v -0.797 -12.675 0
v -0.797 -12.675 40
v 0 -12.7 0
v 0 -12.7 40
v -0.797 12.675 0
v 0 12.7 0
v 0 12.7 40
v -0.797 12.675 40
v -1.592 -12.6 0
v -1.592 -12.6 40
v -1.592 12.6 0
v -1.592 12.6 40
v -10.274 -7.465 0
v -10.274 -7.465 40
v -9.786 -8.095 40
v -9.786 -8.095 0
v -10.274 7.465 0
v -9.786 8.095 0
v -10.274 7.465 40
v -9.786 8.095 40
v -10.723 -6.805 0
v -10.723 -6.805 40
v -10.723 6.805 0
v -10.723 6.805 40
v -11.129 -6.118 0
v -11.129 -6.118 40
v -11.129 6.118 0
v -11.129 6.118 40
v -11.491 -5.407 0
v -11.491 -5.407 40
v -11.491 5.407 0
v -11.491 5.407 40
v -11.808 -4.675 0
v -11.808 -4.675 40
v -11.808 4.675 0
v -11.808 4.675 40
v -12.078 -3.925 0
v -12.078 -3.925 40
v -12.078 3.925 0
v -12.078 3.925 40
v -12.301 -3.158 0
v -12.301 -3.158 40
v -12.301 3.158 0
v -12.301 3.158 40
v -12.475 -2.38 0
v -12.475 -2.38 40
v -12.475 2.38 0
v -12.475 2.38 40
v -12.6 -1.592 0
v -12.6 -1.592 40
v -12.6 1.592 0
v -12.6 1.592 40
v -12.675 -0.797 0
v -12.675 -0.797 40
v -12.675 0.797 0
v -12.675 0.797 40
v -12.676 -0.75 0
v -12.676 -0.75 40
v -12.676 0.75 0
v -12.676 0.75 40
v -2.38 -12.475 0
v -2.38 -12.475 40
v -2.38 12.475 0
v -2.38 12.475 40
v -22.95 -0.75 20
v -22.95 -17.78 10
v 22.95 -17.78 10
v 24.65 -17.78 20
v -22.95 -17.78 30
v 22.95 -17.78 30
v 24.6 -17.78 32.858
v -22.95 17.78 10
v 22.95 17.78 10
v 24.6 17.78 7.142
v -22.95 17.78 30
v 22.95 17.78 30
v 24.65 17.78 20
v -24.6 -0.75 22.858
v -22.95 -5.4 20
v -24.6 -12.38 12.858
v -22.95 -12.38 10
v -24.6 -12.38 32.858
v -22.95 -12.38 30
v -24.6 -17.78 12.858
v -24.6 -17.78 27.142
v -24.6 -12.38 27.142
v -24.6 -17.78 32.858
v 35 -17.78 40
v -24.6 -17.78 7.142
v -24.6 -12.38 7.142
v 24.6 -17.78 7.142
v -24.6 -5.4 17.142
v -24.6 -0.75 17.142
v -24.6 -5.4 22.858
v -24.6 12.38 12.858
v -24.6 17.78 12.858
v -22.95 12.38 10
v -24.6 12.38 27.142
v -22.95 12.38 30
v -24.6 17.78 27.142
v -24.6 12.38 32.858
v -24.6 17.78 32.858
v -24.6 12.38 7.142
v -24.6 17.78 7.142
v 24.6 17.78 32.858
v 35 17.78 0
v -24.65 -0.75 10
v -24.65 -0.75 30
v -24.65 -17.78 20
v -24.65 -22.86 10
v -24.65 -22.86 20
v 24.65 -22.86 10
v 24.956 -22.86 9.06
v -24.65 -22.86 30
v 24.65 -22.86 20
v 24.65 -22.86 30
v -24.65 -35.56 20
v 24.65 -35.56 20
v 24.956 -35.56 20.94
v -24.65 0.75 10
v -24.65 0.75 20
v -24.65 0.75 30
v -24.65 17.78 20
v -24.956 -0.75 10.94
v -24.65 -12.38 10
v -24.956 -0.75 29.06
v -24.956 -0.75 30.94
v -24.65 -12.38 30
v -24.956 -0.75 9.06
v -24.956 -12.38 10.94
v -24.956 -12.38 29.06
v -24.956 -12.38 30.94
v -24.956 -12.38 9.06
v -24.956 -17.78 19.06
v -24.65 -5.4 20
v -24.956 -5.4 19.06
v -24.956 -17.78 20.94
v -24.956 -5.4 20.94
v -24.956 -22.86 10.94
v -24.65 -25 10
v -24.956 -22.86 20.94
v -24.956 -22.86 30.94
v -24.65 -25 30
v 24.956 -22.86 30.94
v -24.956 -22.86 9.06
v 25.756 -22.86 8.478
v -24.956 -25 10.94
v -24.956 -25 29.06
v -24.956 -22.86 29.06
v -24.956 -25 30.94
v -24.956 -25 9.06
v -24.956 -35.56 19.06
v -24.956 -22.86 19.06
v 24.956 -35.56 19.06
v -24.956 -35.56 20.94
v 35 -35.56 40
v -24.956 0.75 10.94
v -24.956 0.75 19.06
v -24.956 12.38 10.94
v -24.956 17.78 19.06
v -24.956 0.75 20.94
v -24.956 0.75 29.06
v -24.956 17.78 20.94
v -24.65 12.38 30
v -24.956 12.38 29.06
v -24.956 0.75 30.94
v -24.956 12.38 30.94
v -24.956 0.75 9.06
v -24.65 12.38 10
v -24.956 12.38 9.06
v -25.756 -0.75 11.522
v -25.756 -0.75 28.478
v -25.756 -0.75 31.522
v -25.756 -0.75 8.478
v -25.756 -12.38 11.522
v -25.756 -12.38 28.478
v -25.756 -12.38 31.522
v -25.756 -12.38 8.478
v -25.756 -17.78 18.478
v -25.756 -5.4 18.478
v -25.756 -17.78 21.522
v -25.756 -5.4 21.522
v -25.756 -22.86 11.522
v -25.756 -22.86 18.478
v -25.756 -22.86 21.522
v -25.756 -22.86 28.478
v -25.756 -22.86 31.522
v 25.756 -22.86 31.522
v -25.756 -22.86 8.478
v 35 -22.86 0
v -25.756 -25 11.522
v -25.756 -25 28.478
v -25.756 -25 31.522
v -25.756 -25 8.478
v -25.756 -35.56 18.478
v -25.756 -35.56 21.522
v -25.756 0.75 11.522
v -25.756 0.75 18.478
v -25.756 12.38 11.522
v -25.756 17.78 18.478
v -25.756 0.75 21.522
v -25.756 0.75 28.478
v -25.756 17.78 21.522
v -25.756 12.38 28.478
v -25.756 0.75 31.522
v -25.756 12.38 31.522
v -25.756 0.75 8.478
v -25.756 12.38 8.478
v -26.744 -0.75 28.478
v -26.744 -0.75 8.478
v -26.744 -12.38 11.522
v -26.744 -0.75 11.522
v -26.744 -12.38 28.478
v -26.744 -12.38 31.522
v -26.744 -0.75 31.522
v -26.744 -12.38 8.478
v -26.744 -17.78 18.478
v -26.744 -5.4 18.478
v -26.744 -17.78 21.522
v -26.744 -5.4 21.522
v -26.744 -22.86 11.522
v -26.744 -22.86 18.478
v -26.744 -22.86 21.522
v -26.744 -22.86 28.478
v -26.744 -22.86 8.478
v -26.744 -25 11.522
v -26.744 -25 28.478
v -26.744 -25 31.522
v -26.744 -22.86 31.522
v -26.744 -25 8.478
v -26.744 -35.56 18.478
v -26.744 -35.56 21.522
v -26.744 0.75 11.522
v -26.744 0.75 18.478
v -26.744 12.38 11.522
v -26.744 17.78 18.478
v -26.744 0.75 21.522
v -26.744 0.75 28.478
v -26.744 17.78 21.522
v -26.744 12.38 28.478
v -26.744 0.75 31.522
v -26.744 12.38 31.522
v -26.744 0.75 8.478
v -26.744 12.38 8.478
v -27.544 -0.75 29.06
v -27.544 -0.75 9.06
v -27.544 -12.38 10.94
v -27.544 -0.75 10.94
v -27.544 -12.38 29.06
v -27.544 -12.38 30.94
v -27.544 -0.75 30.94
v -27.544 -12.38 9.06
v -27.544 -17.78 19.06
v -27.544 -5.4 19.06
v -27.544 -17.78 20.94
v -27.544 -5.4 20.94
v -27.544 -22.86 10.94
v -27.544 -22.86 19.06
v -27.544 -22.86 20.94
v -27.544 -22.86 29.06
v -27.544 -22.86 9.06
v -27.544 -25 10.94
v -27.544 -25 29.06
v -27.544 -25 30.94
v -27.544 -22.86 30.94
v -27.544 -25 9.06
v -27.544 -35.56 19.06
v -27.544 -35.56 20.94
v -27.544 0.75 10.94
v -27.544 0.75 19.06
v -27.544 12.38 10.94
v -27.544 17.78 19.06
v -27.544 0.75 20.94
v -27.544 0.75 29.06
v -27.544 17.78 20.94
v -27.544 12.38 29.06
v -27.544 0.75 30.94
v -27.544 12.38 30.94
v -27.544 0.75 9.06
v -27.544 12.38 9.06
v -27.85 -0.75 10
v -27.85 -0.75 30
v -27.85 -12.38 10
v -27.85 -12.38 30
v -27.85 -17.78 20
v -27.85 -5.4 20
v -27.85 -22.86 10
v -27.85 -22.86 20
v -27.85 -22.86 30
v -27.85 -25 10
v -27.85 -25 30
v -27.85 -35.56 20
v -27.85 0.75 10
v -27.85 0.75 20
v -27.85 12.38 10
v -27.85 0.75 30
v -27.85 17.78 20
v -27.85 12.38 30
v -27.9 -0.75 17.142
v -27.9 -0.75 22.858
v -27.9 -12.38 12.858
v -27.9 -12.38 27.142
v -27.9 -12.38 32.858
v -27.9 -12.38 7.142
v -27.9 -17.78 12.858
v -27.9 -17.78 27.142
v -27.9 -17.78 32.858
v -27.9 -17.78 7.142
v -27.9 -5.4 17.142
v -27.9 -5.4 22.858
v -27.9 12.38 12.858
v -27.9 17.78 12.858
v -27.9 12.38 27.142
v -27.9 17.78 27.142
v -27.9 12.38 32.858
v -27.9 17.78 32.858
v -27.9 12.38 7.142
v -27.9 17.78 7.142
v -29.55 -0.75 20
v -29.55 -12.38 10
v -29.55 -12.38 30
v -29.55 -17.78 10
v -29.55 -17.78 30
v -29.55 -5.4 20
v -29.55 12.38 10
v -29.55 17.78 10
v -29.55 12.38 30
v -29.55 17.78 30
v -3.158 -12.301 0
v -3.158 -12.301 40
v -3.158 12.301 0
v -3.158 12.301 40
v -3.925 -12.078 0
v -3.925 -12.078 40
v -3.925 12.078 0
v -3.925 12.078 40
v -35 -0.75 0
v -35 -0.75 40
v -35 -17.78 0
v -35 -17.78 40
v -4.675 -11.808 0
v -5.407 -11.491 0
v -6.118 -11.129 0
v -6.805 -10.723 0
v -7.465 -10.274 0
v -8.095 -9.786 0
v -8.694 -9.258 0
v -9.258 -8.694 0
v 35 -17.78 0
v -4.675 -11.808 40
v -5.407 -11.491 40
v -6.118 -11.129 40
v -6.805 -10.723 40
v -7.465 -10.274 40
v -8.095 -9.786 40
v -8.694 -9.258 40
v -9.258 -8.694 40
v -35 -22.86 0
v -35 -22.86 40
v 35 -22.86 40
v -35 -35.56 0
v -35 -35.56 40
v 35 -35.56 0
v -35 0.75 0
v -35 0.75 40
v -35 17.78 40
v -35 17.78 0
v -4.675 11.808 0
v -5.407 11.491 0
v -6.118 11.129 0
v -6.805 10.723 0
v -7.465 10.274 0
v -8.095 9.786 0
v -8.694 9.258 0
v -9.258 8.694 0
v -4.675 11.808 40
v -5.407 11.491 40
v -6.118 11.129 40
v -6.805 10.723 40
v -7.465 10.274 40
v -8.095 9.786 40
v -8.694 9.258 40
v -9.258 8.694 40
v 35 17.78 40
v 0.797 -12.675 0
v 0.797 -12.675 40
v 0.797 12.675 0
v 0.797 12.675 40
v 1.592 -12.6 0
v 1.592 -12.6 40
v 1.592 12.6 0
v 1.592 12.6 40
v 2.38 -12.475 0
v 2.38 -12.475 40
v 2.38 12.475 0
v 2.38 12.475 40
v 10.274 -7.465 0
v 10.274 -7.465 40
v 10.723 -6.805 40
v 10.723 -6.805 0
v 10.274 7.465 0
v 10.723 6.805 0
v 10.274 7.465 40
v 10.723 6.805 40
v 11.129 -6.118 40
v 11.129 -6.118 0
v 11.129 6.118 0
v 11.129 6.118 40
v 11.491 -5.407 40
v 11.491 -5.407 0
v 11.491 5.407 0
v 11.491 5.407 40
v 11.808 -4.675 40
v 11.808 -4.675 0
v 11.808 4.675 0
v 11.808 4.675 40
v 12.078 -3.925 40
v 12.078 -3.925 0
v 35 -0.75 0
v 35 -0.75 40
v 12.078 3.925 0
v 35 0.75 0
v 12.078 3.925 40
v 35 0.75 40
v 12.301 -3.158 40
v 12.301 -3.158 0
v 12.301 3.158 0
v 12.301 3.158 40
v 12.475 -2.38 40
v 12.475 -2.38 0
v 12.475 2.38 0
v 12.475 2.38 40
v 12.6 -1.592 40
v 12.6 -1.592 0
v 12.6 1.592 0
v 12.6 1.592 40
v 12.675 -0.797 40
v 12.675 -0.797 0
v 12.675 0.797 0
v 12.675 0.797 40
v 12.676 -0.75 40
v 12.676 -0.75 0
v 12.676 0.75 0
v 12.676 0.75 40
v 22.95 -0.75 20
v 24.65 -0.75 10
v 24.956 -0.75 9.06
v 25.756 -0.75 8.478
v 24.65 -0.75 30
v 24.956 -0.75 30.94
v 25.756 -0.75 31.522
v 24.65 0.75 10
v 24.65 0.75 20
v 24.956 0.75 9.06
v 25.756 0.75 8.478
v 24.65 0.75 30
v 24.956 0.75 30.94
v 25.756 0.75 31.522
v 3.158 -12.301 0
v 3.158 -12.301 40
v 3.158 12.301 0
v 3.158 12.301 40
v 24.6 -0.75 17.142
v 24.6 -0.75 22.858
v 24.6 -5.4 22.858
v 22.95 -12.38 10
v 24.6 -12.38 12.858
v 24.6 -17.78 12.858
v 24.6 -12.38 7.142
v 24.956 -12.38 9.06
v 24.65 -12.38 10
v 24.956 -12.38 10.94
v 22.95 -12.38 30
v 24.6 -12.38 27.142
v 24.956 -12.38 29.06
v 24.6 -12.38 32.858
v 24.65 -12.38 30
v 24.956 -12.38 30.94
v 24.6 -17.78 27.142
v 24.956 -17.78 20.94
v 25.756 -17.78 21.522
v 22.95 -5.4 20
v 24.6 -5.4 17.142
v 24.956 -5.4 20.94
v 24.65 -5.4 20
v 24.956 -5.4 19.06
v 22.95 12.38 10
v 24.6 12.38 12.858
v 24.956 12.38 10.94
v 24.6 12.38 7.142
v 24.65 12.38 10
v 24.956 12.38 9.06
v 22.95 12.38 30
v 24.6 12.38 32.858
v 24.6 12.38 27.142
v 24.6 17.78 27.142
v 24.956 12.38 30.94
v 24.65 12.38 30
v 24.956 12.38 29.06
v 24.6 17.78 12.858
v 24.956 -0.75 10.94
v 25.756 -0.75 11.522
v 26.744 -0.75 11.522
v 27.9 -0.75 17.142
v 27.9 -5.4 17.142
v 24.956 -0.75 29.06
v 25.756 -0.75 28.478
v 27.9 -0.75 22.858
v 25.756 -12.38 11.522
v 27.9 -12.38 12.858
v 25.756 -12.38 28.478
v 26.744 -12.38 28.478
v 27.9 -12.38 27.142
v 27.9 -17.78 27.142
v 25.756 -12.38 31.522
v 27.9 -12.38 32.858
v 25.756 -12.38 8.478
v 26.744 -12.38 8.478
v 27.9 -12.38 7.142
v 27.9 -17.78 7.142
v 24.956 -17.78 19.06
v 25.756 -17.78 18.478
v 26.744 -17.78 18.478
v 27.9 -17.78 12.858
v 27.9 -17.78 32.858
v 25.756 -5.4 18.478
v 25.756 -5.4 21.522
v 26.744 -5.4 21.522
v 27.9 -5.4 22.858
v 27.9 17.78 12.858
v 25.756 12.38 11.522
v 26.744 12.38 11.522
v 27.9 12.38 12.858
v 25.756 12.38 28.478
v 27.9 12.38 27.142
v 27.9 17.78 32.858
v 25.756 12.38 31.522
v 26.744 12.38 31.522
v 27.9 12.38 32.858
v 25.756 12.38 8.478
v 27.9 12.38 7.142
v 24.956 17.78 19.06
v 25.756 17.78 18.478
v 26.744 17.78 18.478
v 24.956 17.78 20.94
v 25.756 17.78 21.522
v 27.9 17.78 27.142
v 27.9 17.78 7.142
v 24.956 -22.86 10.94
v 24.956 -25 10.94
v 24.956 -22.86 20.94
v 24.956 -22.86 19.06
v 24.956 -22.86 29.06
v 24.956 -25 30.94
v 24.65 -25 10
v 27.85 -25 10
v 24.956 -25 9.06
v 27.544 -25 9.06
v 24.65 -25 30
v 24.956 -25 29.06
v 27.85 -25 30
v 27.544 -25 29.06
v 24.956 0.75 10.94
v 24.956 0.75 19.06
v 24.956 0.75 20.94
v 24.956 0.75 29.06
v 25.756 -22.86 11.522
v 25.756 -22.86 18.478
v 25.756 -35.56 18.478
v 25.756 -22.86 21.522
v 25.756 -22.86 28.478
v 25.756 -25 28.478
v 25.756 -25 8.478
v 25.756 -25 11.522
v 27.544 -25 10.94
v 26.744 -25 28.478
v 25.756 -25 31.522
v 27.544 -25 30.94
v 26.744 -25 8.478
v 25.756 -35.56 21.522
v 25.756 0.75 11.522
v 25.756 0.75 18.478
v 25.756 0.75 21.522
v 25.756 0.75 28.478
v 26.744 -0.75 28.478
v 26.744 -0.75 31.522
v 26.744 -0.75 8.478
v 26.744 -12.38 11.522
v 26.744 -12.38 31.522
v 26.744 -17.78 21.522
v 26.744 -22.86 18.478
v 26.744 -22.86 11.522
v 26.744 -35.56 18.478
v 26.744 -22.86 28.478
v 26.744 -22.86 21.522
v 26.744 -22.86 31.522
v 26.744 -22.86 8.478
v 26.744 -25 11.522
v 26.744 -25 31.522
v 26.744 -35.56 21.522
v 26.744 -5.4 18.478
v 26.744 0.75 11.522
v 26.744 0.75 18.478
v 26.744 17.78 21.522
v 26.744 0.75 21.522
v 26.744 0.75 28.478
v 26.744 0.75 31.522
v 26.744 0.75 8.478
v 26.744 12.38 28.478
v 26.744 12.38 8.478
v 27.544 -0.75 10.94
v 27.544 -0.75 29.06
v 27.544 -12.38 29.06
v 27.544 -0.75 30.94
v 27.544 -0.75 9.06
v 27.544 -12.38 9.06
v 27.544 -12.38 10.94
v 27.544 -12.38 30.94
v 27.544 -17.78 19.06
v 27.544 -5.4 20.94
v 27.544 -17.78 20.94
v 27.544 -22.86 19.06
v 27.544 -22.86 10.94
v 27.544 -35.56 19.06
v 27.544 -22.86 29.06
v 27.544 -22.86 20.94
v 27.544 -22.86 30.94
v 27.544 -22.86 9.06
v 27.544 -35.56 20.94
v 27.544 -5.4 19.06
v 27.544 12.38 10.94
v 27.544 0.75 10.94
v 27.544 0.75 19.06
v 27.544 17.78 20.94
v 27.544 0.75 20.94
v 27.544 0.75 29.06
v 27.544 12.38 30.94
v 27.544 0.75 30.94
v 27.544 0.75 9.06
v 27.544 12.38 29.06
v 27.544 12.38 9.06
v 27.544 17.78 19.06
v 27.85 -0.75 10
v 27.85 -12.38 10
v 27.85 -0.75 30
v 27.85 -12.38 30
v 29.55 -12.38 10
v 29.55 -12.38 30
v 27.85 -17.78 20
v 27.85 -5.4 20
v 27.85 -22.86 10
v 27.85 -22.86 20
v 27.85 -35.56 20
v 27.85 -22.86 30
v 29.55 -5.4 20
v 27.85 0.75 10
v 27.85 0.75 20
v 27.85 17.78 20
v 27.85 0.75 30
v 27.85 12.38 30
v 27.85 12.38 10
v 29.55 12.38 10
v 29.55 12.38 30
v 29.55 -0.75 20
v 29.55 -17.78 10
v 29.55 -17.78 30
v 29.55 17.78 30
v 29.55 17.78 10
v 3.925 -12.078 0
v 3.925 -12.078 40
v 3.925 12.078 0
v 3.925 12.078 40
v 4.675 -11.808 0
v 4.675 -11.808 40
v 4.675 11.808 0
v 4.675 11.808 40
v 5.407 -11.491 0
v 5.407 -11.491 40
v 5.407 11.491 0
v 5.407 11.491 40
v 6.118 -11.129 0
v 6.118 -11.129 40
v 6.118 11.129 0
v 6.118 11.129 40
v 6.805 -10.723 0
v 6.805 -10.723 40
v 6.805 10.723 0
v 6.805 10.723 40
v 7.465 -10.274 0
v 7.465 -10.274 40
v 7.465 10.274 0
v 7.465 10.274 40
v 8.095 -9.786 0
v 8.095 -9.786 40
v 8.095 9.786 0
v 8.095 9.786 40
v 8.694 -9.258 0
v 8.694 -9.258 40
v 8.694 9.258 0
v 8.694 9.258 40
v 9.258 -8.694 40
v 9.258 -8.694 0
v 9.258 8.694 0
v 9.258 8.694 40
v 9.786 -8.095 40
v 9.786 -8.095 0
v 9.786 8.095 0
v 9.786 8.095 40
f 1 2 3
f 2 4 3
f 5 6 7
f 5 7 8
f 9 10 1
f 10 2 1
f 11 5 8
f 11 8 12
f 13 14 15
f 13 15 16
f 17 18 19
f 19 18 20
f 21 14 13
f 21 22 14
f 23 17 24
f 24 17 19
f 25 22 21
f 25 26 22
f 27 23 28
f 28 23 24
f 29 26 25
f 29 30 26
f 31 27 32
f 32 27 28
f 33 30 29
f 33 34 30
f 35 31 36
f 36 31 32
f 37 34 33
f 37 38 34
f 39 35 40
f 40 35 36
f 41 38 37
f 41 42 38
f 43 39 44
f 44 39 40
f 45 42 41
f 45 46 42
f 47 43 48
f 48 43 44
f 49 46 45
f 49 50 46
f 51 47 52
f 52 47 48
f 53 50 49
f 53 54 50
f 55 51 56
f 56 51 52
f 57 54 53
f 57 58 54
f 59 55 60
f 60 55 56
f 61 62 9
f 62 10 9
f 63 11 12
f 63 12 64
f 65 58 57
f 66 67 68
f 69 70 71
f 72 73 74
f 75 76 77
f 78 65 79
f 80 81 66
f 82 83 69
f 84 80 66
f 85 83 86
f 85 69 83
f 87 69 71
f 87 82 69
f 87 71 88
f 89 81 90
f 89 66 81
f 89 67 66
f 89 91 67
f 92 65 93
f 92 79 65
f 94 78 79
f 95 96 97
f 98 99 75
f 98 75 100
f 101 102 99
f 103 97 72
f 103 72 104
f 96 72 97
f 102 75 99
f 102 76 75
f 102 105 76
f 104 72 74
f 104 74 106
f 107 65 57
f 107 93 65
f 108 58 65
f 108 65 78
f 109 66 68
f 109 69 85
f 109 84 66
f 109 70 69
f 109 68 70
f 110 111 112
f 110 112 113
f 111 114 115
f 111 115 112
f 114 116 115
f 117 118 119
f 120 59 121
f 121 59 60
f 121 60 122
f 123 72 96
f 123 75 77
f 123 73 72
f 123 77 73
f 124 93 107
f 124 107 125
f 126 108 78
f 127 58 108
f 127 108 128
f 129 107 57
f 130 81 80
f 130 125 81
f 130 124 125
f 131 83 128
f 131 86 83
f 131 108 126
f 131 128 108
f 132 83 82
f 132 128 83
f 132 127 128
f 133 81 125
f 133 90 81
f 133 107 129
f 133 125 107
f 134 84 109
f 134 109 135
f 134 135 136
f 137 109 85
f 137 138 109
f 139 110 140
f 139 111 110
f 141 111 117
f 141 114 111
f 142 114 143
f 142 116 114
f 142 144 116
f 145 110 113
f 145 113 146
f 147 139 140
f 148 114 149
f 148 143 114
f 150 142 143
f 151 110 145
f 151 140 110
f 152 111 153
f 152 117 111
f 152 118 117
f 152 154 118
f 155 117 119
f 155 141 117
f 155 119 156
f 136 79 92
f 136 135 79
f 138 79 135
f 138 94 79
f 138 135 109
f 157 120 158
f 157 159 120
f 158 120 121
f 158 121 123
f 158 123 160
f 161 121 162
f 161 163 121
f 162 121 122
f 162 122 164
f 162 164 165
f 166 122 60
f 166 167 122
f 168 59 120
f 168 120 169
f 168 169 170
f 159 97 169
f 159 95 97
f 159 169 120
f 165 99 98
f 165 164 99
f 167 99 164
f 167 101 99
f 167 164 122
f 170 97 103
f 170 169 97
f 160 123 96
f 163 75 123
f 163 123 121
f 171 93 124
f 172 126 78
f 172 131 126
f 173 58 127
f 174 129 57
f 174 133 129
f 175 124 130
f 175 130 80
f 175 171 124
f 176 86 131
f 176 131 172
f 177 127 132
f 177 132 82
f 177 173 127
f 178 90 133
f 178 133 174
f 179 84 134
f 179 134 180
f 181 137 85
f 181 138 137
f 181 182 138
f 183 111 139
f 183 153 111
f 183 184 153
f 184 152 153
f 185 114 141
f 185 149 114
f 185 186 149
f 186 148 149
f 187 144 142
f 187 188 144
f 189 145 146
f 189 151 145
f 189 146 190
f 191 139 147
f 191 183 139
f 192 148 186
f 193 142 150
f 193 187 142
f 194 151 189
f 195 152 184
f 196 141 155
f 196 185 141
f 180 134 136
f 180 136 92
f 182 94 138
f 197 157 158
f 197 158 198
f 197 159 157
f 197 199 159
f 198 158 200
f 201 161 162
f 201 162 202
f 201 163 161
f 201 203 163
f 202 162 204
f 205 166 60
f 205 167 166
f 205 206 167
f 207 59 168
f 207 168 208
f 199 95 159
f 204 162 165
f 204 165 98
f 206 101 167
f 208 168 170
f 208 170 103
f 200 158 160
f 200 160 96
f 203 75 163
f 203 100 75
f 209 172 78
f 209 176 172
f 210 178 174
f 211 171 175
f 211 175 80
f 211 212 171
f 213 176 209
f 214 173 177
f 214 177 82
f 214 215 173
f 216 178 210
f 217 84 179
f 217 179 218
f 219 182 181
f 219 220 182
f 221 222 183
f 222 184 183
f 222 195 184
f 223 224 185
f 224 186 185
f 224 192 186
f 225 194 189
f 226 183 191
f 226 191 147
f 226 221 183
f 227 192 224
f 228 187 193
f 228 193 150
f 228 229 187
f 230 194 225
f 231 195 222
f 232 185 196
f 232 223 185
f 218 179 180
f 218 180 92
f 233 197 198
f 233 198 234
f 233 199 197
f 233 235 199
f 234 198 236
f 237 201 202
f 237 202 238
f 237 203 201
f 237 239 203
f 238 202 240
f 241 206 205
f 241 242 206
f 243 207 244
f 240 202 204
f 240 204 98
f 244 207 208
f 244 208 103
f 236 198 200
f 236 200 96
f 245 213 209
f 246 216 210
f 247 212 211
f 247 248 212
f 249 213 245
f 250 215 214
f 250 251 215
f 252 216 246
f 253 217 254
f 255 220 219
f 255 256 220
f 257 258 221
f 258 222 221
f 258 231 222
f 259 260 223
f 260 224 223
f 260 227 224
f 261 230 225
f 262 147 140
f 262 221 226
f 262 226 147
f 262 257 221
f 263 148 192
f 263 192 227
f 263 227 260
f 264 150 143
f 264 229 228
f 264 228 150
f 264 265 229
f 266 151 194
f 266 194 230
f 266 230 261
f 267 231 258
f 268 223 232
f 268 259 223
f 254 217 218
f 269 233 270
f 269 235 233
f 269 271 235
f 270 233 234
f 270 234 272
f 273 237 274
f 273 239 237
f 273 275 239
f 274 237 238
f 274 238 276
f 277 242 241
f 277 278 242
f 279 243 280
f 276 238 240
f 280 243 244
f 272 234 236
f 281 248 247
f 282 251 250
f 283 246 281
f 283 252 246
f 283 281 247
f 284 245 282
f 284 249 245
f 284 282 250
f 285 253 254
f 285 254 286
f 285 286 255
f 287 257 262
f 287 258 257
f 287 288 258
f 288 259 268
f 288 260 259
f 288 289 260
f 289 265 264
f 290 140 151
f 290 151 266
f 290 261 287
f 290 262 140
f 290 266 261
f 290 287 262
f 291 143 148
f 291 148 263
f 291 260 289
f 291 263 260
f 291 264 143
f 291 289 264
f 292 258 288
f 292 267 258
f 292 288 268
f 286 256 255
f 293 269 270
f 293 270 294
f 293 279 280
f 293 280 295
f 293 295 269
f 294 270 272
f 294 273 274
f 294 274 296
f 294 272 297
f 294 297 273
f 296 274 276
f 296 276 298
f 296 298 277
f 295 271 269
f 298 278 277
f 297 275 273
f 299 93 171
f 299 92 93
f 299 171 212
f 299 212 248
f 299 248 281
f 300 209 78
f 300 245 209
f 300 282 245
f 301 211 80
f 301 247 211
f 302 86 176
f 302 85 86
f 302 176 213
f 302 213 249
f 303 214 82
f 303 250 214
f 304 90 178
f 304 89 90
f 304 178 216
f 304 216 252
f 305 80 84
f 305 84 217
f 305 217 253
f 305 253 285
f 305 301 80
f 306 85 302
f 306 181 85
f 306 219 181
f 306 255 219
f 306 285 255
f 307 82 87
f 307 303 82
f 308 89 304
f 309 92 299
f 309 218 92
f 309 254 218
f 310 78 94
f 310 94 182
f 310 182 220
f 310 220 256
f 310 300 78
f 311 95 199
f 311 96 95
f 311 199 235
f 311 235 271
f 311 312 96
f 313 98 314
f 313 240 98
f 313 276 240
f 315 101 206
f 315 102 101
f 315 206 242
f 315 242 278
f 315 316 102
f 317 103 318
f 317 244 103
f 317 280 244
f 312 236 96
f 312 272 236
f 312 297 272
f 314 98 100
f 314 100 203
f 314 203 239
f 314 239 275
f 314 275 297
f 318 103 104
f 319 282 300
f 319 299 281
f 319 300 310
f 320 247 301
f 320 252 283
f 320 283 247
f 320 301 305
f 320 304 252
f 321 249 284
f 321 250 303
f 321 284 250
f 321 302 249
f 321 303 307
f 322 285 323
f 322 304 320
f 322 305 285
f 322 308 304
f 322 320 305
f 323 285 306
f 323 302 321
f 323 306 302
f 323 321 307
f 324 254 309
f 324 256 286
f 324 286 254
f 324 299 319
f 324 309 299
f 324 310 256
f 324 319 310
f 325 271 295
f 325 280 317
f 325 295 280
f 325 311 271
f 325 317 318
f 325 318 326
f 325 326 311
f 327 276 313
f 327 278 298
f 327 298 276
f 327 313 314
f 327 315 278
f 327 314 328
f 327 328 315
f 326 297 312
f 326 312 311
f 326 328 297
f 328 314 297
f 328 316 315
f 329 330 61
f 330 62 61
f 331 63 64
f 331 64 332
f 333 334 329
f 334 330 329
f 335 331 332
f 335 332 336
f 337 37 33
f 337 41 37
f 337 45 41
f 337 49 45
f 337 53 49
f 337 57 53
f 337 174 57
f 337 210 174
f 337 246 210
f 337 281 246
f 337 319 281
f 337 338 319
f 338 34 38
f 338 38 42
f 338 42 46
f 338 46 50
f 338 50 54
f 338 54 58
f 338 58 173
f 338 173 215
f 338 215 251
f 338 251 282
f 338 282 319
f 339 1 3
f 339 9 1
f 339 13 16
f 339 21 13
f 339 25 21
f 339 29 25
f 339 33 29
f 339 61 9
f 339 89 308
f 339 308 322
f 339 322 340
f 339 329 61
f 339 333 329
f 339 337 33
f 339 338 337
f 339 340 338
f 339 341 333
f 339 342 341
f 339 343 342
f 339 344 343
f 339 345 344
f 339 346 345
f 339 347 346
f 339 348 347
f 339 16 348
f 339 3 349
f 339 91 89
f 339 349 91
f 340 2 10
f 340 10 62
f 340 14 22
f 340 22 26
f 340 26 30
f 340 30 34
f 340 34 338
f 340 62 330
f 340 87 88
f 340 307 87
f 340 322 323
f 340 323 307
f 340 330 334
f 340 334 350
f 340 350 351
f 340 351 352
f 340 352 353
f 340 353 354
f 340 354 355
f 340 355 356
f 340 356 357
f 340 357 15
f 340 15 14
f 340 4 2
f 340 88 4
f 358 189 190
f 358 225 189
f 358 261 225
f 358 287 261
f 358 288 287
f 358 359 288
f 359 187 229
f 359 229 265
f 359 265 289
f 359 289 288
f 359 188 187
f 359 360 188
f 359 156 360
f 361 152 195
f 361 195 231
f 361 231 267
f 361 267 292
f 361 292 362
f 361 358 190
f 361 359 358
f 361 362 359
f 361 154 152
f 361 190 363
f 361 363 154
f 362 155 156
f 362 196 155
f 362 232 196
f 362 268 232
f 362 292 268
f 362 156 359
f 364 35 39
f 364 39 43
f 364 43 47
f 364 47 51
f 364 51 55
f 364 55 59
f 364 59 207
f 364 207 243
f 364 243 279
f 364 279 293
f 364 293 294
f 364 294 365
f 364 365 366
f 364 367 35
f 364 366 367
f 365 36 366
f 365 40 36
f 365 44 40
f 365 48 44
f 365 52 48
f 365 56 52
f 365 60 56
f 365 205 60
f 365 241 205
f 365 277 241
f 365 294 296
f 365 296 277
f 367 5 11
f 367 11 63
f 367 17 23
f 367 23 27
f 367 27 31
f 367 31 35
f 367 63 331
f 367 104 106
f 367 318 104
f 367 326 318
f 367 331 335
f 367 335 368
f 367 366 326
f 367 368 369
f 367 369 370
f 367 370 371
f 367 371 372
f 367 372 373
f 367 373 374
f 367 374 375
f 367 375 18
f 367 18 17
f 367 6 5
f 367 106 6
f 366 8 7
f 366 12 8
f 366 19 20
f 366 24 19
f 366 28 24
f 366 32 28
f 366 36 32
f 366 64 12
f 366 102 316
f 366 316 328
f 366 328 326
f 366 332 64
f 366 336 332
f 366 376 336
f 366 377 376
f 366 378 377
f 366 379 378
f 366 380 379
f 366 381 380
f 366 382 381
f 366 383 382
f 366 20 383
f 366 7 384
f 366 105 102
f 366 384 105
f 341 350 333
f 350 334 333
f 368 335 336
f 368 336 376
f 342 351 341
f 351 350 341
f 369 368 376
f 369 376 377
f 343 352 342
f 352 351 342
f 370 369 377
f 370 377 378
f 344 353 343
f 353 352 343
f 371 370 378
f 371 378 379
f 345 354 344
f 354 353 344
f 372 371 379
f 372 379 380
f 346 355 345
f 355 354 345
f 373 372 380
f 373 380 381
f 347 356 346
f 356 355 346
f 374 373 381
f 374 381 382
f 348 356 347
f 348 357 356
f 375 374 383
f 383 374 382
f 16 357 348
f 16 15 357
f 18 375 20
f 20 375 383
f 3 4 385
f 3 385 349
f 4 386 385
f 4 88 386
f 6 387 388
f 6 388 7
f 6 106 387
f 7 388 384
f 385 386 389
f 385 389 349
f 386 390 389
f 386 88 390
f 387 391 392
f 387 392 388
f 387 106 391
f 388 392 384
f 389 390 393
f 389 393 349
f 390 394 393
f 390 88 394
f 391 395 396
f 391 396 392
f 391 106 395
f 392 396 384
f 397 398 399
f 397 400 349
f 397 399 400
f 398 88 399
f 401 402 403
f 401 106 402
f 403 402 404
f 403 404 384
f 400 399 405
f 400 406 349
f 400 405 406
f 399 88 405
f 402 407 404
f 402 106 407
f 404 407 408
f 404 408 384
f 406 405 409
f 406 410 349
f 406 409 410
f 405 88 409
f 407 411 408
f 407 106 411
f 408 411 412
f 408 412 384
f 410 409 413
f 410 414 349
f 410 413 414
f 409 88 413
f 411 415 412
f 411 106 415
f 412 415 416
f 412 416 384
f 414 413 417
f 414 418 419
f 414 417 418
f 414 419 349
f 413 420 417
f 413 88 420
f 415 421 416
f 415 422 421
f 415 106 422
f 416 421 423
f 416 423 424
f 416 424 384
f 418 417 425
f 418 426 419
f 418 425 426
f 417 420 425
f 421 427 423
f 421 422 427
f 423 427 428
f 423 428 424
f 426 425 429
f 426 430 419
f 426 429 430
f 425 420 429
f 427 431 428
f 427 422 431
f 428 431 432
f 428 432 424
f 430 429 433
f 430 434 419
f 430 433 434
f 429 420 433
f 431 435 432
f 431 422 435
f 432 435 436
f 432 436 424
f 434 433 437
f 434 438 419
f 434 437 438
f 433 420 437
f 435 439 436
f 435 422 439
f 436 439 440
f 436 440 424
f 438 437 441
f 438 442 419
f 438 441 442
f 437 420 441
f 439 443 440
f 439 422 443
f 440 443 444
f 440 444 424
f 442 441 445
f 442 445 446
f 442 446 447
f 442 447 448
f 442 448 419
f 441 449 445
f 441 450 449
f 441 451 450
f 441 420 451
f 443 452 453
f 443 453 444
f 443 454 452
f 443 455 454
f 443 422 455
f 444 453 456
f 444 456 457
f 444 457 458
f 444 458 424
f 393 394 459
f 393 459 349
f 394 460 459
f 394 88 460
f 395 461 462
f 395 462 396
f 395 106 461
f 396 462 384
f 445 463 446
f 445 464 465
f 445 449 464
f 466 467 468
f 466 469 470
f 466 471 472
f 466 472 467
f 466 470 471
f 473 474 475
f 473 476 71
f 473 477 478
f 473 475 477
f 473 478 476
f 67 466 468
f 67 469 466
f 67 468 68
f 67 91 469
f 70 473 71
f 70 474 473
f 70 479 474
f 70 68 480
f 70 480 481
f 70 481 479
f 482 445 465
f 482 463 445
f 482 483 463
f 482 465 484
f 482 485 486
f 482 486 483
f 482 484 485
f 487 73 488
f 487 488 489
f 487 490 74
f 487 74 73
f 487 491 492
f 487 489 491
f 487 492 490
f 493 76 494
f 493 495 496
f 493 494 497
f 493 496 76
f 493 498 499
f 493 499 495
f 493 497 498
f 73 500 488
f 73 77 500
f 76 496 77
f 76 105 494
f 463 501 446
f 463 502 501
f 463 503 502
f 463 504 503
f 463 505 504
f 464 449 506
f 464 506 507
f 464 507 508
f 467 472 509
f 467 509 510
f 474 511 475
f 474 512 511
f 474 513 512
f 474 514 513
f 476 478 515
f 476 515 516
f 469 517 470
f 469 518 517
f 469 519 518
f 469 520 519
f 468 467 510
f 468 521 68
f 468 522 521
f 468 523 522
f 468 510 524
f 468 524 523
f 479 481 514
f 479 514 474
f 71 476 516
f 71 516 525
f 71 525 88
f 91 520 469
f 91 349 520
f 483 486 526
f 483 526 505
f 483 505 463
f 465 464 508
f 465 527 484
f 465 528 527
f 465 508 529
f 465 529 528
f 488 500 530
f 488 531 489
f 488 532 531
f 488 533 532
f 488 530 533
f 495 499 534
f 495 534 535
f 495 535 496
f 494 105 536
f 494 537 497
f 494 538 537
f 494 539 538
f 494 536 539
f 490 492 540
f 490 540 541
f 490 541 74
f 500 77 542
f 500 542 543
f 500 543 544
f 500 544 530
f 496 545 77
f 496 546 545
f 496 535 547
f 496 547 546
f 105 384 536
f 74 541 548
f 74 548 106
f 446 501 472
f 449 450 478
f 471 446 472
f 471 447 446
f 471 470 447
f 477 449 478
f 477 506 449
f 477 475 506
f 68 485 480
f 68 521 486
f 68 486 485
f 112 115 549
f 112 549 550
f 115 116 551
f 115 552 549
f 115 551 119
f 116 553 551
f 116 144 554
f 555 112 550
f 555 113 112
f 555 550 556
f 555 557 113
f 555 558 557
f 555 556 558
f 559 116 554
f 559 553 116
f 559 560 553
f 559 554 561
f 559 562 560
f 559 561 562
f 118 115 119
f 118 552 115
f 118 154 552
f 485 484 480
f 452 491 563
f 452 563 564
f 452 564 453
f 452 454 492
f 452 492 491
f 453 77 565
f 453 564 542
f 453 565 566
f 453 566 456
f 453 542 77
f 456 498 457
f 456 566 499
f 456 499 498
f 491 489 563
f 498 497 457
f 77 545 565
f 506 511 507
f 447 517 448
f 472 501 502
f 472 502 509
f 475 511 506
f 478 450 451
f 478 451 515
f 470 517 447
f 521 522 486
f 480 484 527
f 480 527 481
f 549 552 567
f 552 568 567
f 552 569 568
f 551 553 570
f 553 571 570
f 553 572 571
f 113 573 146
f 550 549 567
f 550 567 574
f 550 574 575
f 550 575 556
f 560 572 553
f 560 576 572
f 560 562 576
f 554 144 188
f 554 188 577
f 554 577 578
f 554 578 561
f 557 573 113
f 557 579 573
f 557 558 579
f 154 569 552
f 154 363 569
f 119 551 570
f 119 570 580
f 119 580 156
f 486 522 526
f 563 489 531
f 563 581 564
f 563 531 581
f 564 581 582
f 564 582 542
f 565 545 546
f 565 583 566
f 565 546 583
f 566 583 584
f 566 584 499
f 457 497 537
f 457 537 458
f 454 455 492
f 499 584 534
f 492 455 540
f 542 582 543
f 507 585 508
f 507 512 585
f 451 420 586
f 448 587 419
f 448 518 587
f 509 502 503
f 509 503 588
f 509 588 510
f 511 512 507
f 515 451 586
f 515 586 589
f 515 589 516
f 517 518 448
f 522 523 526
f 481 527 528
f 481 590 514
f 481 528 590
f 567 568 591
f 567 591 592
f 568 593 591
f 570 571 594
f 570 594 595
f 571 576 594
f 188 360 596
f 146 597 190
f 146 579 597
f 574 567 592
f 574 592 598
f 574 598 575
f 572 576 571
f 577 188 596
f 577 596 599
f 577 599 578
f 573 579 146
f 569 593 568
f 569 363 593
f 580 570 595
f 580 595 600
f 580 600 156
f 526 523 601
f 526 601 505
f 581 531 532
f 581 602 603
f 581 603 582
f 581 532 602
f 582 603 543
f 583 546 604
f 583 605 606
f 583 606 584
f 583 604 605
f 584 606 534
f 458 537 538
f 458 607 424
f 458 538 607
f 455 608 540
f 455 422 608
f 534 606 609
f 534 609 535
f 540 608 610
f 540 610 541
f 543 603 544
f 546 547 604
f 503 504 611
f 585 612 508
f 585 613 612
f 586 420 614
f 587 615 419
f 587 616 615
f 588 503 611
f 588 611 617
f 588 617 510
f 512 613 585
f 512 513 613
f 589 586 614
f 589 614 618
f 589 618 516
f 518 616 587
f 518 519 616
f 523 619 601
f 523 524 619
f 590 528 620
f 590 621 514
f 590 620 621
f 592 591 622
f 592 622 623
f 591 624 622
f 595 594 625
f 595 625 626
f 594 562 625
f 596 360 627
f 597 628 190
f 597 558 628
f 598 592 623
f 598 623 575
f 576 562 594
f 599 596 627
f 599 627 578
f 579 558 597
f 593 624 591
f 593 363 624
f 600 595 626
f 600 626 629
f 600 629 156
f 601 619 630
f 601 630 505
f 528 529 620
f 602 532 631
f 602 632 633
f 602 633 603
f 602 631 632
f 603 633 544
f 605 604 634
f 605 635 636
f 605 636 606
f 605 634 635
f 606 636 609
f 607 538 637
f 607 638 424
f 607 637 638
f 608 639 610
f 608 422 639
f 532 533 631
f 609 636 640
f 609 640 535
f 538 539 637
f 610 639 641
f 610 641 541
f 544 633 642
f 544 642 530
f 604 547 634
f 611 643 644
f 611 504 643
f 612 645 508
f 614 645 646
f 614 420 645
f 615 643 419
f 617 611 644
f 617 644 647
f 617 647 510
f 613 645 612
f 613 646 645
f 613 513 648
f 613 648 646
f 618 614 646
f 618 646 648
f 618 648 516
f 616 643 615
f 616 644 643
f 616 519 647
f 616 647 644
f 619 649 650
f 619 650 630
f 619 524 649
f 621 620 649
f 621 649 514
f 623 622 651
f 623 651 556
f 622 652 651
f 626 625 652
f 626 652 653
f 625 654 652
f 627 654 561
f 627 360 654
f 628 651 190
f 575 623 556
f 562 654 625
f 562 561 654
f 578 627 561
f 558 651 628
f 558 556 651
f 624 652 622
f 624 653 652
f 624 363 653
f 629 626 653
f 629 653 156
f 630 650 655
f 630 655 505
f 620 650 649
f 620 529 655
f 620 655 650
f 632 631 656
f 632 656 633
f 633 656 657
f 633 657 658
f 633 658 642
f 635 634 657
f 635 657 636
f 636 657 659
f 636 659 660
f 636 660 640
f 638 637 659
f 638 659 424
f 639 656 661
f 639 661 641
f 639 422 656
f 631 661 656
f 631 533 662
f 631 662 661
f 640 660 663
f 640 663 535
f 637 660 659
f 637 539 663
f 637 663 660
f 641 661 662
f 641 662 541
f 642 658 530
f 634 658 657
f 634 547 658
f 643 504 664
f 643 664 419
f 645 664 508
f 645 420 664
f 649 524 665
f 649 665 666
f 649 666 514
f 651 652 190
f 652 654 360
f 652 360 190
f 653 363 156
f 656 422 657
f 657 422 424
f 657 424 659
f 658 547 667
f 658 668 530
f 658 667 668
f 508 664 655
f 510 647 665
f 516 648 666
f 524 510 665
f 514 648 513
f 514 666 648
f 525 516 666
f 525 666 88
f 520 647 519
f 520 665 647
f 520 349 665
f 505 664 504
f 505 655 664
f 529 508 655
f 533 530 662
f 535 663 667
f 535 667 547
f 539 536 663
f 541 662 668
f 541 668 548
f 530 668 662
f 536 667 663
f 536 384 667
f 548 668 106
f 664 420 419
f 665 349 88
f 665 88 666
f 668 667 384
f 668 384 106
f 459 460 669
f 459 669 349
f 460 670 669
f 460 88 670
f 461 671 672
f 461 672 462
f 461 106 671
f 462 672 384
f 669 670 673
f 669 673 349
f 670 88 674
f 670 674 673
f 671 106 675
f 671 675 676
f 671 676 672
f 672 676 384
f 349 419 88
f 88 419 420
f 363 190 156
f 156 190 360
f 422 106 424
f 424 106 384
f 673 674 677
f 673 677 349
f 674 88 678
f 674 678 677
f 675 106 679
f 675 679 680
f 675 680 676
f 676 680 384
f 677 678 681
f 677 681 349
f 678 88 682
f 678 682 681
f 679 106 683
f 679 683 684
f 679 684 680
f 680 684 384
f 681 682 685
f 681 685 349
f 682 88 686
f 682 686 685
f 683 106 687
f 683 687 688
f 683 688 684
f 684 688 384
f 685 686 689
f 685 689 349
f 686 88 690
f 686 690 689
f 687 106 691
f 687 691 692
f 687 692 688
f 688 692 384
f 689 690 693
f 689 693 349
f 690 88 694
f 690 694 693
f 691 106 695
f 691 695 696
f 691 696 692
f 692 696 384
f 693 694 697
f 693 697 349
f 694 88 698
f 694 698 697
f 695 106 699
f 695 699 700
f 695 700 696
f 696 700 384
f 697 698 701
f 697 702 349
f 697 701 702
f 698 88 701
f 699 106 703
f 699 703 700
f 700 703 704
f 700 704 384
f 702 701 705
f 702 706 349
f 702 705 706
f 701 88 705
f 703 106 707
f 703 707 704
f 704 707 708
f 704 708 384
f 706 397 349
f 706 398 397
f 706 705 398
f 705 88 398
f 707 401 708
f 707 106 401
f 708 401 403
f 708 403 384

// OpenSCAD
//improving rendering speed.
draft = true;   // sets rendering quality to draft.
$fs = draft ? 5 : 0.5;
$fa = 10;

module 888_2001(height = 10, height_of_cap_cylinder = 2){

    width = 70; 
    depth = main_tube_outer_diameter + 4*thickness_between_tubes;
    height = 40;    
    
    difference (){
        union(){
            translate([-(width/2),-(depth/2),0])
                cube ([width,depth,height]);

            translate([-(width/2),-depth,0])
                cube ([width,main_tube_outer_diameter/2, height]);
        }

        //tube
        translate([0,0,- global_clearance])
           cylinder(h = 2*main_tube_outer_diameter + global_clearance,r = main_tube_outer_diameter/2, $fn = draft ? 100 : 200);

        //prořez
        translate([-width/2,- (3*global_clearance)/2,- main_tube_outer_diameter])
                cube([width, 3*global_clearance, 4*main_tube_outer_diameter]);

        //šrouby pro zajištění
        translate([width/2 - width/8,0,height/4])
            rotate([90,0,0])
                union(){
                        cylinder(h = 50, r = M3_screw_diameter/2, $fn = draft ? 10 : 20, center = true);
                translate([0,0, main_tube_outer_diameter/2 + 2*thickness_between_tubes - 2*Nut_height_M3])
                        cylinder(h = Nut_height_M3*2 + global_clearance, r = Nut_diameter_M3/2, $fn = 6);
                translate([0,0, - main_tube_outer_diameter/2 - 2*thickness_between_tubes - global_clearance])
                        cylinder(h = Nut_height_M3*2 + global_clearance, r = Nut_diameter_M3/2, $fn = 6);
                }

        translate([-width/2 + width/8,0,height/4])
            rotate([90,0,0])
                union(){
                        cylinder(h = 50, r = M3_screw_diameter/2, $fn = draft ? 10 : 20, center = true);
                translate([0,0, main_tube_outer_diameter/2 + 2*thickness_between_tubes - 2*Nut_height_M3])
                        cylinder(h = Nut_height_M3*2 + global_clearance, r = Nut_diameter_M3/2, $fn = 6);
                translate([0,0, - main_tube_outer_diameter/2 - 2*thickness_between_tubes - global_clearance])
                        cylinder(h = Nut_height_M3*2 + global_clearance, r = Nut_diameter_M3/2, $fn = 6);
                }

        translate([-width/2 + width/8,0,height - height/4])
            rotate([90,0,0])
                union(){
                        cylinder(h = 50, r = M3_screw_diameter/2, $fn = draft ? 10 : 20, center = true);
                translate([0,0, main_tube_outer_diameter/2 + 2*thickness_between_tubes - 2*Nut_height_M3])
                        cylinder(h = Nut_height_M3*2 + global_clearance, r = Nut_diameter_M3/2, $fn = 6);
                translate([0,0, - main_tube_outer_diameter/2 - 2*thickness_between_tubes - global_clearance])
                        cylinder(h = Nut_height_M3*2 + global_clearance, r = Nut_diameter_M3/2, $fn = 6);
                }

        translate([width/2 - width/8,0,height - height/4])
            rotate([90,0,0])
                union(){
                        cylinder(h = 50, r = M3_screw_diameter/2, $fn = draft ? 10 : 20, center = true);
                translate([0,0, main_tube_outer_diameter/2 + 2*thickness_between_tubes - 2*Nut_height_M3])
                        cylinder(h = Nut_height_M3*2 + global_clearance, r = Nut_diameter_M3/2, $fn = 6);
                translate([0,0, - main_tube_outer_diameter/2 - 2*thickness_between_tubes - global_clearance])
                        cylinder(h = Nut_height_M3*2 + global_clearance, r = Nut_diameter_M3/2, $fn = 6);
                }

        translate([-width/2 + width/8, -depth + depth/2, height/2])
            rotate([90,0,0])
                union(){
                        cylinder(h = 100, r = M3_screw_diameter/2, $fn = draft ? 10 : 20, center = true);
                translate([0,0, - main_tube_outer_diameter/2 - 2*thickness_between_tubes - global_clearance])
                        cylinder(h = Nut_height_M3*2 + global_clearance, r = Nut_diameter_M3/2, $fn = 6);
                }

        translate([width/2 - width/8, -depth + depth/2, height/2])
            rotate([90,0,0])
                union(){
                        cylinder(h = 100, r = M3_screw_diameter/2, $fn = draft ? 10 : 20, center = true);
                translate([0,0, - main_tube_outer_diameter/2 - 2*thickness_between_tubes - global_clearance])
                        cylinder(h = Nut_height_M3*2 + global_clearance, r = Nut_diameter_M3/2, $fn = 6);
                }

        
    }

}


888_2001(draft);


include <../Parameters.scad>
